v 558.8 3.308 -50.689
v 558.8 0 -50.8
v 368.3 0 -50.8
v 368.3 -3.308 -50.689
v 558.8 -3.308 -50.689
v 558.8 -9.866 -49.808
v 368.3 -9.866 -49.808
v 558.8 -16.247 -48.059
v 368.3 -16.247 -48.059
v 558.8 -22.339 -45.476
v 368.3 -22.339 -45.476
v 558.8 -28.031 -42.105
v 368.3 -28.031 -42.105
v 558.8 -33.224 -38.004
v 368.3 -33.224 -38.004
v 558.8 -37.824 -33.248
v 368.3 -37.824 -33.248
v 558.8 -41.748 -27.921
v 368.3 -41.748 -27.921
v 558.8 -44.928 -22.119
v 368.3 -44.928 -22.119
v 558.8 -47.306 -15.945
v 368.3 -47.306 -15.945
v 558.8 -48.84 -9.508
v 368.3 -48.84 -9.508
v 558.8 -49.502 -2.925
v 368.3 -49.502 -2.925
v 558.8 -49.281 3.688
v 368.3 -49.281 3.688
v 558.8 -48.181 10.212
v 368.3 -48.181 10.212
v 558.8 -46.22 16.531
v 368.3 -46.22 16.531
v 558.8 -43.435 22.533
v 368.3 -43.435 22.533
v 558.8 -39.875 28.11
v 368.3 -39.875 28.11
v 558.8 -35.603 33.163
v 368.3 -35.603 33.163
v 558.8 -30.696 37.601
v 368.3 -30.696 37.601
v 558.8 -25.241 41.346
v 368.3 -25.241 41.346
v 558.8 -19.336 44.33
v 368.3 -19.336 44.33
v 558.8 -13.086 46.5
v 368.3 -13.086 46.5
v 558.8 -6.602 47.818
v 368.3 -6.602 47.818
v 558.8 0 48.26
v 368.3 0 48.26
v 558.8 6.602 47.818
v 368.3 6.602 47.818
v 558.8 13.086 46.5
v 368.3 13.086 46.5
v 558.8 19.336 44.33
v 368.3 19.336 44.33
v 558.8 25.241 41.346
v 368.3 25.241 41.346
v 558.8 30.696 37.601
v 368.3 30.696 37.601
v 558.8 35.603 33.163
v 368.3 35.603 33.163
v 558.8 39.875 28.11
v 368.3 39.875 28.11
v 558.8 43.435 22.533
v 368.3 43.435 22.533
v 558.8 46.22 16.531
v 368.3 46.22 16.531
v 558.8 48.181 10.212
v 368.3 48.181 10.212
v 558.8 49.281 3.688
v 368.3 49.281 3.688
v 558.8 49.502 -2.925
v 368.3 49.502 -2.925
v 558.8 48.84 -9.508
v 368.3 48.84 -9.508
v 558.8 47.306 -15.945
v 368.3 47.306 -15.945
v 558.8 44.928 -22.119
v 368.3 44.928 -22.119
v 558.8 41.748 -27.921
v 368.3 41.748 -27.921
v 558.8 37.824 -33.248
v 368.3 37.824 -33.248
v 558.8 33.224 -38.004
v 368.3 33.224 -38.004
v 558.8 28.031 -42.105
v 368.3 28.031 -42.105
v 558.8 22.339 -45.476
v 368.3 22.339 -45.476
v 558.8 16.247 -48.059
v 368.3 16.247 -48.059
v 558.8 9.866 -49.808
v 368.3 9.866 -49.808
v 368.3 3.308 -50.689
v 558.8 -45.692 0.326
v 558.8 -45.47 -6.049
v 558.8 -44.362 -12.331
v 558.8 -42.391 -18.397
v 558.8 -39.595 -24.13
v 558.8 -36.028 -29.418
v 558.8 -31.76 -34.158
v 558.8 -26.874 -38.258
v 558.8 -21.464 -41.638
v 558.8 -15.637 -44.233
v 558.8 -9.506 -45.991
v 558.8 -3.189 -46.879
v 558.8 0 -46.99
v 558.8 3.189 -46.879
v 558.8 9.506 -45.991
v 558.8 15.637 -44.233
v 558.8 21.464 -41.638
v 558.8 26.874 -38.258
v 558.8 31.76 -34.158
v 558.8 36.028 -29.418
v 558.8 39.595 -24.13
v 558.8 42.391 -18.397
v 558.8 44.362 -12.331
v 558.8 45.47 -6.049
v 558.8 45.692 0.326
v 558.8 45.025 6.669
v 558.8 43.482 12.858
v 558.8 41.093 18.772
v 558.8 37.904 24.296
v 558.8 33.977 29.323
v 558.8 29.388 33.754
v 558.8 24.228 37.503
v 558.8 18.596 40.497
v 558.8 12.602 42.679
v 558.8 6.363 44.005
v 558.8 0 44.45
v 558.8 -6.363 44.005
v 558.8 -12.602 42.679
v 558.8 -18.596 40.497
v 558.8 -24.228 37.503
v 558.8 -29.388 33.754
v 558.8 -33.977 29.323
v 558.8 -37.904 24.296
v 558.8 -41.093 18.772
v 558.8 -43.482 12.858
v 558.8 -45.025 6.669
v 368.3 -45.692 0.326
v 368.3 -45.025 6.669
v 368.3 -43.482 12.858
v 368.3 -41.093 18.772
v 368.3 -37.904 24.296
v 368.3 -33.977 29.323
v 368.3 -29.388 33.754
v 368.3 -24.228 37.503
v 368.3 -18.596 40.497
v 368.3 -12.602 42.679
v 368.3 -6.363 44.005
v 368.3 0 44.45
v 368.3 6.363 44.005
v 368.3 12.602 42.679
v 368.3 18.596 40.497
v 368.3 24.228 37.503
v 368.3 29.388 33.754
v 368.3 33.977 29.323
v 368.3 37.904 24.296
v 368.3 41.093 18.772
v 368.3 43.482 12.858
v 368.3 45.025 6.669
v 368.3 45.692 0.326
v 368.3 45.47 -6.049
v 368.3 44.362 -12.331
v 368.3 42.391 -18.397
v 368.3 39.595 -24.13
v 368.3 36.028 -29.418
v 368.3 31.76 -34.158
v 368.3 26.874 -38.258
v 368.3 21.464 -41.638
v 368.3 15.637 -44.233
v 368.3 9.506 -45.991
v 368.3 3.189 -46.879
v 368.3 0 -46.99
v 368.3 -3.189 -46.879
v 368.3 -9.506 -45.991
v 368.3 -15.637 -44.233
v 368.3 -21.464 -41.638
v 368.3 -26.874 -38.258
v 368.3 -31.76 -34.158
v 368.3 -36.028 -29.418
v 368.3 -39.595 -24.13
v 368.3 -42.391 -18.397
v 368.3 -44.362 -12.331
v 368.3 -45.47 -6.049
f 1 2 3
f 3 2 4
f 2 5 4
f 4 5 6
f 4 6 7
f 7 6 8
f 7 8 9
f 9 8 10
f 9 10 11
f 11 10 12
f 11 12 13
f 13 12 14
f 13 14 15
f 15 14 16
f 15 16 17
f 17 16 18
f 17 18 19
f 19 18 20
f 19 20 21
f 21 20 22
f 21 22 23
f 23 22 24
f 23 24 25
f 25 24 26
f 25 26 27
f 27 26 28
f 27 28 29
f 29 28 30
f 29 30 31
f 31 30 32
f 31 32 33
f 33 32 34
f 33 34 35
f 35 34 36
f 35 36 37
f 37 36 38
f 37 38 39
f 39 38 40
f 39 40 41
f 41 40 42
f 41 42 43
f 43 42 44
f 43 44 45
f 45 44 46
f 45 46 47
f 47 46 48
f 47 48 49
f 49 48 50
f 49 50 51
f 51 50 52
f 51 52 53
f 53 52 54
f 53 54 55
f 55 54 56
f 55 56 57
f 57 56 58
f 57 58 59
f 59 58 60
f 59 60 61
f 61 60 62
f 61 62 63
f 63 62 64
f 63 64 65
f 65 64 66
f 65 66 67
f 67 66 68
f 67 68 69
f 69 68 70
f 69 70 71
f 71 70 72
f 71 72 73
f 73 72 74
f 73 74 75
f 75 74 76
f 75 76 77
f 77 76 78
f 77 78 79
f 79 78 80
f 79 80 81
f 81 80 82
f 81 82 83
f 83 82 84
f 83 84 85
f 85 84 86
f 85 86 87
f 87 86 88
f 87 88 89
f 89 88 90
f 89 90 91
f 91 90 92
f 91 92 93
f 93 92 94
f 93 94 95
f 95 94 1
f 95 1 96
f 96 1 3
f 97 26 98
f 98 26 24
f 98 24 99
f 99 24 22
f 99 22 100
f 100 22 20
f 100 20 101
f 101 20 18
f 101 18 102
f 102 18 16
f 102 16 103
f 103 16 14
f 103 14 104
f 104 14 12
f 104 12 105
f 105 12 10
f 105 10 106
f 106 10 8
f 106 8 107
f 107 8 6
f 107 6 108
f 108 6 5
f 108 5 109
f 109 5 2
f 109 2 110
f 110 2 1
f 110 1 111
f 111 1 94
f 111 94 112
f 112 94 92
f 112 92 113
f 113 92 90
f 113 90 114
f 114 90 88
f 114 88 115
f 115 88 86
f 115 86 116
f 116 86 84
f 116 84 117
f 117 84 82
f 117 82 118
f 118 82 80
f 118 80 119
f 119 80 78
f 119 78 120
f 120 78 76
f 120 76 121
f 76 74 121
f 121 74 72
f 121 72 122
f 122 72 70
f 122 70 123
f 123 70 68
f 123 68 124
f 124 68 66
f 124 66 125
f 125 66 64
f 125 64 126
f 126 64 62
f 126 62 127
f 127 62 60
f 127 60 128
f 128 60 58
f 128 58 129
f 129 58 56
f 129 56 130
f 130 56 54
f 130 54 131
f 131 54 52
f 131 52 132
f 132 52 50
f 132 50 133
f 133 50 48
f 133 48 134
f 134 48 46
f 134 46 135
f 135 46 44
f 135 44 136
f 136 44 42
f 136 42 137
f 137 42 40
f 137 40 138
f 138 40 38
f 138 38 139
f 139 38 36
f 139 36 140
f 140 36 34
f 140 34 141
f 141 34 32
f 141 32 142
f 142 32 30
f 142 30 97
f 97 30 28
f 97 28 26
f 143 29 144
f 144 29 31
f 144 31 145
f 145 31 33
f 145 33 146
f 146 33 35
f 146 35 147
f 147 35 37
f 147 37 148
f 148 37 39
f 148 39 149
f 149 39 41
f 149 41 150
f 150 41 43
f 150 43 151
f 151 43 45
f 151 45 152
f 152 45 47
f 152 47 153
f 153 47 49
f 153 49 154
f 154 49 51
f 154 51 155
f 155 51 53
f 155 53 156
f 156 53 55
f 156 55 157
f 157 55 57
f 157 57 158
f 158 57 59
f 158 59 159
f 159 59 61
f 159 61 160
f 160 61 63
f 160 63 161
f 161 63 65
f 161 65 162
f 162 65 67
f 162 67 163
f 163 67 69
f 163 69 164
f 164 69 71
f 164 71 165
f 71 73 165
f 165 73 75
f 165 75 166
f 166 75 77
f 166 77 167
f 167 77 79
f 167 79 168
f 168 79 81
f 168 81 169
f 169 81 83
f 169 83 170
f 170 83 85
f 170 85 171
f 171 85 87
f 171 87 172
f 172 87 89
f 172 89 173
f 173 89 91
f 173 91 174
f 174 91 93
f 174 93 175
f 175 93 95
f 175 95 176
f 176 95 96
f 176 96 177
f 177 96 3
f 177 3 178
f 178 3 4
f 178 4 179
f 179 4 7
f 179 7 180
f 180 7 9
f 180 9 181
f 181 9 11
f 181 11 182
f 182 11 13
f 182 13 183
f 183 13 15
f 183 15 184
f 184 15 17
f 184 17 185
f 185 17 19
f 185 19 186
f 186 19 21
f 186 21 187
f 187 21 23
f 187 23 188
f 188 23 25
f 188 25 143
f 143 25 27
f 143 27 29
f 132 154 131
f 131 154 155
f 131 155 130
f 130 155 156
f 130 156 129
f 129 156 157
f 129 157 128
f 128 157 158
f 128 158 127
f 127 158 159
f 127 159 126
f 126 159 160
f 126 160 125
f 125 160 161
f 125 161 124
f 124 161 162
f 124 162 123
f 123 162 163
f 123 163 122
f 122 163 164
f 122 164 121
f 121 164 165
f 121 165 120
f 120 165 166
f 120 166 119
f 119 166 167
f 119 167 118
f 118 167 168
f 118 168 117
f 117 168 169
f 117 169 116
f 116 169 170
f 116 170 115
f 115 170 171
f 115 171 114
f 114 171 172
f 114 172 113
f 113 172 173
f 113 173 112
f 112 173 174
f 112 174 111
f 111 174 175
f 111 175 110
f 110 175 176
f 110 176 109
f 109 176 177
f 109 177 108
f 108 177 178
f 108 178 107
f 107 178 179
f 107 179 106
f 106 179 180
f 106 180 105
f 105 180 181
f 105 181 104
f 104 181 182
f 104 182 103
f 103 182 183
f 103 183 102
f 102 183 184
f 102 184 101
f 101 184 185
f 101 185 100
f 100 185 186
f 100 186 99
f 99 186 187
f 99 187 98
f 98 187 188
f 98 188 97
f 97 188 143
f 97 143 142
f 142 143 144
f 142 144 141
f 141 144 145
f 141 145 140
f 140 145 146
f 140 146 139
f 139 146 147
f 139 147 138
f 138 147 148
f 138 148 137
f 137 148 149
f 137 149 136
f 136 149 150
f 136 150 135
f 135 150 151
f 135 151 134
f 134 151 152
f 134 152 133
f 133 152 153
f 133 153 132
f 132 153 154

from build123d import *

# Parameters (mm, degrees)
SKETCH2_R           = 49.53
BOSS_EXTRUDE1_DEPTH = 203.2
SKETCH3_R           = 12.411567775
BOSS_EXTRUDE2_DEPTH = 50.8
SKETCH4_R           = 49.53
CUT_EXTRUDE1_DEPTH  = 381
SHELL1_T            = -3.81


with BuildPart() as part:
    # Sketch1 → Revolve2 (revolve)
    with BuildSketch(Plane(origin=(0, 0, 0), x_dir=(1, 0, 0), z_dir=(0, 1, 0))):
        with BuildLine():
            Line((355.600000053, 50.799999973), (355.600000053, 1.269999973))
            Line((355.600000053, 1.269999973), (50.800000047, 1.269999973))
            Line((50.800000047, 1.269999973), (50.800000047, 13.68156774))
            add(Edge.make_bspline(
                [(50.800000047, 13.68156774), (51.224607869, 13.786541703), (52.079748124, 13.99736018), (53.901316113, 14.445024847), (55.90428978, 14.933081433), (57.918204029, 15.420277853), (59.969167456, 15.913068852), (62.005618607, 16.398707152), (64.04585603, 16.881716673), (66.619566178, 17.486536085), (69.727395203, 18.209576077), (73.370678613, 19.04644661), (77.55044141, 19.991710093), (82.779136229, 21.155661521), (97.433989811, 24.348822924), (119.485629173, 28.81699746), (168.00075752, 37.516041455), (219.035004801, 44.081341124), (262.822405655, 47.820230422), (299.206459448, 49.570692635), (308.841173655, 49.947366018), (315.265578413, 50.162354186), (319.548981494, 50.29122703), (323.832782669, 50.405645805), (328.116966628, 50.505609209), (332.401425999, 50.591116104), (336.139078075, 50.653092889), (339.329601827, 50.697064227), (341.973247658, 50.727612371), (344.069774299, 50.748376802), (346.163273231, 50.76568058), (348.272494467, 50.77952366), (350.344714481, 50.789906003), (352.405704949, 50.79682758), (354.282013928, 50.799423175), (355.162608625, 50.799999974), (355.600000053, 50.799999973)],
                knots=[0.08282658, 0.08282658, 0.08282658, 0.08282658, 0.08282658, 0.088510594, 0.094194608, 0.099878623, 0.105562637, 0.111246651, 0.116930666, 0.12261468, 0.128298694, 0.139917182, 0.15153567, 0.163154157, 0.174772645, 0.198009616, 0.314194483, 0.407142375, 0.709223026, 0.755696971, 0.790552431, 0.802170918, 0.813789405, 0.825407891, 0.837026378, 0.848644864, 0.860263351, 0.871881838, 0.877565852, 0.883249866, 0.88893388, 0.894617894, 0.900301908, 0.905985922, 0.911669936, 0.91735395, 0.91735395, 0.91735395, 0.91735395, 0.91735395], degree=4))
        make_face()
    revolve(axis=Axis((355.600000053, 0, -1.269999973), (-1, 0, 0)))

    # Sketch2 → Boss-Extrude1 (add)
    with BuildSketch(Plane(origin=(355.600000053, 0, 0), x_dir=(0, 0, -1), z_dir=(1, 0, 0))):
        with Locations((1.269999973, 0)):
            Circle(SKETCH2_R)
    extrude(amount=BOSS_EXTRUDE1_DEPTH)

    # Sketch3 → Boss-Extrude2 (add)
    with BuildSketch(Plane.ZY.offset(-50.800000063)):
        with Locations((-1.269999973, 0)):
            Circle(SKETCH3_R)
    extrude(amount=BOSS_EXTRUDE2_DEPTH)

    # Sketch4 → Cut-Extrude1 (cut)
    with BuildSketch(Plane(origin=(368.300000053, 0, 0), x_dir=(0, 0, -1), z_dir=(1, 0, 0))):
        with Locations((1.269999973, 0)):
            Circle(SKETCH4_R)
    extrude(amount=-CUT_EXTRUDE1_DEPTH, mode=Mode.SUBTRACT)

    # Shell1
    shell1_openings = [part.faces().sort_by_distance(p)[0] for p in [
        (558.800000053, 0, -1.269999973),
        (368.300000053, 0, -1.269999973),
    ]]
    offset(amount=SHELL1_T, openings=shell1_openings, kind=Kind.INTERSECTION)


solid = part.part
